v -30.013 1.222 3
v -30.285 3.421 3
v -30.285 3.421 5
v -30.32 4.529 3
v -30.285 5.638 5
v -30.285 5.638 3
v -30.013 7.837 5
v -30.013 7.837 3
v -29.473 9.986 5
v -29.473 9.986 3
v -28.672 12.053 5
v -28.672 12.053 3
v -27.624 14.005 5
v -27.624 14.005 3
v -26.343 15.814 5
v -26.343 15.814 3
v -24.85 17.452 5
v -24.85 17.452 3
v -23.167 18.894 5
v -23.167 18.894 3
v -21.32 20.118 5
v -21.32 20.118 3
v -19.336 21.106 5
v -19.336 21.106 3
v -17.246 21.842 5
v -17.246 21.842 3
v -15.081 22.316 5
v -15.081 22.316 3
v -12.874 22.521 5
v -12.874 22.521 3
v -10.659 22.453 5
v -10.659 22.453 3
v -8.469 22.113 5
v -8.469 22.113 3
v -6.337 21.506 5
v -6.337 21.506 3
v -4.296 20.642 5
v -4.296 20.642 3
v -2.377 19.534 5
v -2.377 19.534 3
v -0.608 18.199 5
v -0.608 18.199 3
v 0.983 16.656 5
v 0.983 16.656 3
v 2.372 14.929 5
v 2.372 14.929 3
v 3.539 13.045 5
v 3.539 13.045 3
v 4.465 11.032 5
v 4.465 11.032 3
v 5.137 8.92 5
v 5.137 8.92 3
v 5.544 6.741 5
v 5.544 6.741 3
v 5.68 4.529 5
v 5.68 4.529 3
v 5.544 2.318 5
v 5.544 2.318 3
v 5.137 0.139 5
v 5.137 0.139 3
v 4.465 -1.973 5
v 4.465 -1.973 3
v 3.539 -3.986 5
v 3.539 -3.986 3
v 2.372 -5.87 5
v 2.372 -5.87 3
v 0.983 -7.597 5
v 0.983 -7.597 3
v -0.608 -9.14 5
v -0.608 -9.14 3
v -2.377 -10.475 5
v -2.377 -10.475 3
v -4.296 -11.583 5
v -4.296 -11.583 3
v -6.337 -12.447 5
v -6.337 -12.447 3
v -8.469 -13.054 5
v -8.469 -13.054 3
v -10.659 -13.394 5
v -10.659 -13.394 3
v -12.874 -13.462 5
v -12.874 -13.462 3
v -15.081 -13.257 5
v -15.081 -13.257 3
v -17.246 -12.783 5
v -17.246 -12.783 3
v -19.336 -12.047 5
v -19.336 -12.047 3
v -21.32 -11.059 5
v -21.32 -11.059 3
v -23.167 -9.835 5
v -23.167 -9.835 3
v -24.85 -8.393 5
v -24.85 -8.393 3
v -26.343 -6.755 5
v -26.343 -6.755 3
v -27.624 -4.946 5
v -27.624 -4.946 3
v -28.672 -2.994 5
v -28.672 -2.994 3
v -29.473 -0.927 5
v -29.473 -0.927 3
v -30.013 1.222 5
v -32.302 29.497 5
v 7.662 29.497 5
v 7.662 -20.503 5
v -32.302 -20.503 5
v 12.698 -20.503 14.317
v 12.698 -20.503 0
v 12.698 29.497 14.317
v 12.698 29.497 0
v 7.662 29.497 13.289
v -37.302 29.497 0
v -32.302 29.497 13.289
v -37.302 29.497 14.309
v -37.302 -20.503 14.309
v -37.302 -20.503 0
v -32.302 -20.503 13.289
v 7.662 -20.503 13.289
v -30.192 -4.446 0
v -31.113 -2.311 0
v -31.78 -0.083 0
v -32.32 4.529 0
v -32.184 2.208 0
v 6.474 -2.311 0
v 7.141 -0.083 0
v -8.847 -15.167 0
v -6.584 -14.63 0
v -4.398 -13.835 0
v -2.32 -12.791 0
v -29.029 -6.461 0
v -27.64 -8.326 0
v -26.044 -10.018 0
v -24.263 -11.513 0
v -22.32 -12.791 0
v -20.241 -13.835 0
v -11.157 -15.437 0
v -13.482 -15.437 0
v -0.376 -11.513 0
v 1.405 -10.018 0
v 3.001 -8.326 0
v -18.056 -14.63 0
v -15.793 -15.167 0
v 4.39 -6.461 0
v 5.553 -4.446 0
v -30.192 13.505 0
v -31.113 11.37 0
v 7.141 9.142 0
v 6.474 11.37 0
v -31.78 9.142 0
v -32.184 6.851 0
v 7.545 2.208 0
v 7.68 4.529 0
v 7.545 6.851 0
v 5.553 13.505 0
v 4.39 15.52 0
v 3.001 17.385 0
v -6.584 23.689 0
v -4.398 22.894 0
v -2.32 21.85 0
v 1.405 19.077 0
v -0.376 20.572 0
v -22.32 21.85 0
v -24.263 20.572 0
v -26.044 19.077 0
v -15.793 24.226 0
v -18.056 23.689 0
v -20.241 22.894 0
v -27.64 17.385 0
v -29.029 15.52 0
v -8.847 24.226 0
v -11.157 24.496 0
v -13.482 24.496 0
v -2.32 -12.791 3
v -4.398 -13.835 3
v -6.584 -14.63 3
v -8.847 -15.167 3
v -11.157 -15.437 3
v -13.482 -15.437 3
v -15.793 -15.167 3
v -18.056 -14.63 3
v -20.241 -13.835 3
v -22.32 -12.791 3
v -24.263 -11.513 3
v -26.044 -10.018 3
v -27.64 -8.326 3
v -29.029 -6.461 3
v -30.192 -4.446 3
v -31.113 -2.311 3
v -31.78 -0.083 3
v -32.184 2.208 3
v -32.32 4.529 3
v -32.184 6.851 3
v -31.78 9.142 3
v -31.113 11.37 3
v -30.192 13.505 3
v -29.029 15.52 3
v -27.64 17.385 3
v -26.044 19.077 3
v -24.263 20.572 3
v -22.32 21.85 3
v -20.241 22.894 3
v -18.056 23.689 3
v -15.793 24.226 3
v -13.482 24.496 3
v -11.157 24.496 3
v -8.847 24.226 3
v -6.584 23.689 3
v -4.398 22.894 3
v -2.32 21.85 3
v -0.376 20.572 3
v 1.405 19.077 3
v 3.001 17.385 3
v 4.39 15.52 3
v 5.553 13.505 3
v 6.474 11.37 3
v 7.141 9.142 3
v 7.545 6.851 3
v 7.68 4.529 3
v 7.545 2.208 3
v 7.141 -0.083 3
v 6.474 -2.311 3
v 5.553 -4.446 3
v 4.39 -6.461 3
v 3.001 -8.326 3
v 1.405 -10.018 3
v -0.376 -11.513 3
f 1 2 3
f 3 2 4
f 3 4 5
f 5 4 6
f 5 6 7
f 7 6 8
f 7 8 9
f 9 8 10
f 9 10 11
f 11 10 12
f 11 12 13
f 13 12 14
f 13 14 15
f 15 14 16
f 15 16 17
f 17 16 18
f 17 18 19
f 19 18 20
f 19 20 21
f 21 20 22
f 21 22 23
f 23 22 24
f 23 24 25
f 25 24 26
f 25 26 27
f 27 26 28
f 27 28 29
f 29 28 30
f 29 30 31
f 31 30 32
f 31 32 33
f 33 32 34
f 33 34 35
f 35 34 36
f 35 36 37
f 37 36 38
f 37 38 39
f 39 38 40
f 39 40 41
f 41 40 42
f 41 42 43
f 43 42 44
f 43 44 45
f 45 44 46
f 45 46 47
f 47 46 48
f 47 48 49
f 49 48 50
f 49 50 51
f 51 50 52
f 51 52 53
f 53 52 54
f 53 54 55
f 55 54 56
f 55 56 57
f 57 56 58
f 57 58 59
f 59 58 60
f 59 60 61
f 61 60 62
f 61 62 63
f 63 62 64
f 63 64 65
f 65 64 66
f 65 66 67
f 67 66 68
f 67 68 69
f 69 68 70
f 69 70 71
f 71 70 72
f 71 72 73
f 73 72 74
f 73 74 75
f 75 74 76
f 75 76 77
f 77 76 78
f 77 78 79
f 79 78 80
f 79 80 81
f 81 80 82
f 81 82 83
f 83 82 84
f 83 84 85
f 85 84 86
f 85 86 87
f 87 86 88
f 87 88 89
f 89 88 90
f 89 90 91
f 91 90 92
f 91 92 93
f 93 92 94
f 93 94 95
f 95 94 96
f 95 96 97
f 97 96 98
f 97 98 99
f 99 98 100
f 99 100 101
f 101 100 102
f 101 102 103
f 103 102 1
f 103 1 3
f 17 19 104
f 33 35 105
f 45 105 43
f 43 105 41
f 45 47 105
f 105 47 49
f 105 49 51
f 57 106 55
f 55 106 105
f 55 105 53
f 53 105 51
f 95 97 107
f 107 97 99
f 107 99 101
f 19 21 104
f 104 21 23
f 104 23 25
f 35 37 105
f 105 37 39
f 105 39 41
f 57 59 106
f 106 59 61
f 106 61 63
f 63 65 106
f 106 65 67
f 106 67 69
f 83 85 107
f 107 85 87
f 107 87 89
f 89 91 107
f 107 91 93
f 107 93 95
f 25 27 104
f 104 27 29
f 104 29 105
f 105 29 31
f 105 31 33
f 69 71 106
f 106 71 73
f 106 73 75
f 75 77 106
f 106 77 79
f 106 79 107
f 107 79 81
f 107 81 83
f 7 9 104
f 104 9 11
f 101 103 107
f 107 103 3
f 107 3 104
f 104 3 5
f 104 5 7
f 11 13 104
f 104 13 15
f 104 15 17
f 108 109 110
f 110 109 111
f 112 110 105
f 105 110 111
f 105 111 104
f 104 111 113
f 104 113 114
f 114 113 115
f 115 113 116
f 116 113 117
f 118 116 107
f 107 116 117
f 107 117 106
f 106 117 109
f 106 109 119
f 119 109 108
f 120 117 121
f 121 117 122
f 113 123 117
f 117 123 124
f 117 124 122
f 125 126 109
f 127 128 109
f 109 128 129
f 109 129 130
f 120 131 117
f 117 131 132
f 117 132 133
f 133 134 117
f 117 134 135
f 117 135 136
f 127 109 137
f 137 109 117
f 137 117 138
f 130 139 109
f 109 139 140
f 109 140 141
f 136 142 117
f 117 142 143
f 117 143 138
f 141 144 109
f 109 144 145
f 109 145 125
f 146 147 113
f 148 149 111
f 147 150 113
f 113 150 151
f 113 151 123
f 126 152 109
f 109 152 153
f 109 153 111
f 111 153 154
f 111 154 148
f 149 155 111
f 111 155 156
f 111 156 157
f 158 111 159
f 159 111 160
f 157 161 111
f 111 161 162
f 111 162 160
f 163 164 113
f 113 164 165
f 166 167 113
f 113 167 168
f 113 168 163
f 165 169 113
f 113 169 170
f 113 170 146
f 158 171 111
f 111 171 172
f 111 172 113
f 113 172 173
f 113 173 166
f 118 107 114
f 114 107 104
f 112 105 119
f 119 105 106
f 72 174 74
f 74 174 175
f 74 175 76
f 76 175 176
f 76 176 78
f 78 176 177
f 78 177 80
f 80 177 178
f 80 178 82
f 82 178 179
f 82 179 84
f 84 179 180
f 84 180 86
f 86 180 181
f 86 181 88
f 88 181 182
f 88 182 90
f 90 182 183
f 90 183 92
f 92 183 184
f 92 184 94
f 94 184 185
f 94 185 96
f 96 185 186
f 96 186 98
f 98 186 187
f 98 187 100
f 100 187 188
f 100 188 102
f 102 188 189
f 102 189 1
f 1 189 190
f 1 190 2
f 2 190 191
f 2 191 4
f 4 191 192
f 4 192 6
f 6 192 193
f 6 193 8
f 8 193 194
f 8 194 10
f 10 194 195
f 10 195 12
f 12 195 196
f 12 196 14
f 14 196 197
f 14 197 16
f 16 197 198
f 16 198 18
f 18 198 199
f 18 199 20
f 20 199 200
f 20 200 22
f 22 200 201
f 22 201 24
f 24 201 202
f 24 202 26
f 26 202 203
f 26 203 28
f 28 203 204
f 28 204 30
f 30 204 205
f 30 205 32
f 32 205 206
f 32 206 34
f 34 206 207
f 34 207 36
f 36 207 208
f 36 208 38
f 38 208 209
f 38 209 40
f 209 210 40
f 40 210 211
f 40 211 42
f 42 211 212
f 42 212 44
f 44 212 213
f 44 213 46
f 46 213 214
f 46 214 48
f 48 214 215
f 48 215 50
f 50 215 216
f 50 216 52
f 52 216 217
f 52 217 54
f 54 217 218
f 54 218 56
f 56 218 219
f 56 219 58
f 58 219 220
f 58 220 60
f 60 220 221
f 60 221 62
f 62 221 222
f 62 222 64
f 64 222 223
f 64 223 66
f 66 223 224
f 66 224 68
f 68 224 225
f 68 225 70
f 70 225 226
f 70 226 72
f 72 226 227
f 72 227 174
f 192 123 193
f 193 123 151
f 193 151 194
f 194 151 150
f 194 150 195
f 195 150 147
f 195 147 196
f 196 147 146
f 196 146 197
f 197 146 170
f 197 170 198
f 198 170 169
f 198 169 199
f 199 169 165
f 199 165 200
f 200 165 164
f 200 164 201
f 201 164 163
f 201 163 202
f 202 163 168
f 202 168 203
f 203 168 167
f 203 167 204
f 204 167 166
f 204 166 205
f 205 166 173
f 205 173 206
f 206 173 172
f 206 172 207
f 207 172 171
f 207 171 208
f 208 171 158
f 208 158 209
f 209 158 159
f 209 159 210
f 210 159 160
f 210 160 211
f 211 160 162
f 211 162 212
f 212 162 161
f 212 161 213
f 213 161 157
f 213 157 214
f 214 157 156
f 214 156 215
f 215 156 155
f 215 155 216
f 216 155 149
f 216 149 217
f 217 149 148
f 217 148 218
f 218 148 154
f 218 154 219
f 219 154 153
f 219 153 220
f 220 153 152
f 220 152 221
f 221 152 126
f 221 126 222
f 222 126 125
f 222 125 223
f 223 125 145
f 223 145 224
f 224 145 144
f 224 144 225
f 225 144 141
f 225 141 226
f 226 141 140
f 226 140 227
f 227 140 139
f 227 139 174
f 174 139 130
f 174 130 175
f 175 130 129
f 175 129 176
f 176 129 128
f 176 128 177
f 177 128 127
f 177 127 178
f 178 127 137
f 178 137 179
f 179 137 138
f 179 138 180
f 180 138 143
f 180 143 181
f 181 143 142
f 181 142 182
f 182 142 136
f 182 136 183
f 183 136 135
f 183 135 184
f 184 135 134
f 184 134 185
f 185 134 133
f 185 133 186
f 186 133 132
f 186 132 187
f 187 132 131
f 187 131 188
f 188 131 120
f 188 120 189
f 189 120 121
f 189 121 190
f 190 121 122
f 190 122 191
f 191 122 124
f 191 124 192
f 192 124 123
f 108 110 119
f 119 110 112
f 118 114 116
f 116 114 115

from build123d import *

# Parameters (mm, degrees)
SKETCH2_W               = 50
SKETCH2_H               = 50
BOSS_EXTRUDE1_DEPTH     = 5
SKETCH3_W               = 5
SKETCH3_H               = 50
SKETCH3_W_2             = 5.036023039
BOSS_EXTRUDE2_DEPTH     = 11
CUT_EXTRUDE3_DEPTH      = 51.174718111
CUT_EXTRUDE3_DEPTH_BACK = 51.174718111
SKETCH5_R               = 18
SKETCH6_R               = 20
CUT_EXTRUDE4_DEPTH      = 3
CUT_EXTRUDE5_DEPTH      = 51.174718111
CUT_EXTRUDE5_DEPTH_BACK = 51.174718111
SKETCH7_R               = 112.5


with BuildPart() as part:
    # Sketch2 → Boss-Extrude1 (new body)
    with BuildSketch(Plane.XY):
        with Locations((-12.301587302, 4.497354497)):
            Rectangle(SKETCH2_W, SKETCH2_H)
    extrude(amount=BOSS_EXTRUDE1_DEPTH)

    # Sketch3 → Boss-Extrude2 (add)
    with BuildSketch(Plane.XY.offset(5)):
        with Locations((-34.801587302, 4.497354497)):
            Rectangle(SKETCH3_W, SKETCH3_H)
        with Locations((10.180401179, 4.497354497)):
            Rectangle(SKETCH3_W_2, SKETCH3_H)
    extrude(amount=BOSS_EXTRUDE2_DEPTH)

    # Sketch5 → Cut-Extrude3 (cut, two sides: drawn at the far end of the back side and taken through both)
    with BuildSketch(Plane.XY.offset(-CUT_EXTRUDE3_DEPTH_BACK)):
        with Locations((-12.319598821, 4.529496056)):
            Circle(SKETCH5_R)
    extrude(amount=CUT_EXTRUDE3_DEPTH + CUT_EXTRUDE3_DEPTH_BACK, mode=Mode.SUBTRACT)

    # Sketch6 → Cut-Extrude4 (cut)
    with BuildSketch(Plane(origin=(0, 0, 0), x_dir=(-1, 0, 0), z_dir=(0, 0, -1))):
        with Locations((12.319598821, 4.529496056)):
            Circle(SKETCH6_R)
    extrude(amount=-CUT_EXTRUDE4_DEPTH, mode=Mode.SUBTRACT)

    # Sketch7 → Cut-Extrude5 (cut, two sides: drawn at the far end of the back side and taken through both)
    with BuildSketch(Plane(origin=(0, 0, 0), x_dir=(1, 0, 0), z_dir=(0, 1, 0)).offset(-CUT_EXTRUDE5_DEPTH_BACK)):
        with Locations((-12.319598821, -124)):
            Circle(SKETCH7_R)
    extrude(amount=CUT_EXTRUDE5_DEPTH + CUT_EXTRUDE5_DEPTH_BACK, mode=Mode.SUBTRACT)


solid = part.part
